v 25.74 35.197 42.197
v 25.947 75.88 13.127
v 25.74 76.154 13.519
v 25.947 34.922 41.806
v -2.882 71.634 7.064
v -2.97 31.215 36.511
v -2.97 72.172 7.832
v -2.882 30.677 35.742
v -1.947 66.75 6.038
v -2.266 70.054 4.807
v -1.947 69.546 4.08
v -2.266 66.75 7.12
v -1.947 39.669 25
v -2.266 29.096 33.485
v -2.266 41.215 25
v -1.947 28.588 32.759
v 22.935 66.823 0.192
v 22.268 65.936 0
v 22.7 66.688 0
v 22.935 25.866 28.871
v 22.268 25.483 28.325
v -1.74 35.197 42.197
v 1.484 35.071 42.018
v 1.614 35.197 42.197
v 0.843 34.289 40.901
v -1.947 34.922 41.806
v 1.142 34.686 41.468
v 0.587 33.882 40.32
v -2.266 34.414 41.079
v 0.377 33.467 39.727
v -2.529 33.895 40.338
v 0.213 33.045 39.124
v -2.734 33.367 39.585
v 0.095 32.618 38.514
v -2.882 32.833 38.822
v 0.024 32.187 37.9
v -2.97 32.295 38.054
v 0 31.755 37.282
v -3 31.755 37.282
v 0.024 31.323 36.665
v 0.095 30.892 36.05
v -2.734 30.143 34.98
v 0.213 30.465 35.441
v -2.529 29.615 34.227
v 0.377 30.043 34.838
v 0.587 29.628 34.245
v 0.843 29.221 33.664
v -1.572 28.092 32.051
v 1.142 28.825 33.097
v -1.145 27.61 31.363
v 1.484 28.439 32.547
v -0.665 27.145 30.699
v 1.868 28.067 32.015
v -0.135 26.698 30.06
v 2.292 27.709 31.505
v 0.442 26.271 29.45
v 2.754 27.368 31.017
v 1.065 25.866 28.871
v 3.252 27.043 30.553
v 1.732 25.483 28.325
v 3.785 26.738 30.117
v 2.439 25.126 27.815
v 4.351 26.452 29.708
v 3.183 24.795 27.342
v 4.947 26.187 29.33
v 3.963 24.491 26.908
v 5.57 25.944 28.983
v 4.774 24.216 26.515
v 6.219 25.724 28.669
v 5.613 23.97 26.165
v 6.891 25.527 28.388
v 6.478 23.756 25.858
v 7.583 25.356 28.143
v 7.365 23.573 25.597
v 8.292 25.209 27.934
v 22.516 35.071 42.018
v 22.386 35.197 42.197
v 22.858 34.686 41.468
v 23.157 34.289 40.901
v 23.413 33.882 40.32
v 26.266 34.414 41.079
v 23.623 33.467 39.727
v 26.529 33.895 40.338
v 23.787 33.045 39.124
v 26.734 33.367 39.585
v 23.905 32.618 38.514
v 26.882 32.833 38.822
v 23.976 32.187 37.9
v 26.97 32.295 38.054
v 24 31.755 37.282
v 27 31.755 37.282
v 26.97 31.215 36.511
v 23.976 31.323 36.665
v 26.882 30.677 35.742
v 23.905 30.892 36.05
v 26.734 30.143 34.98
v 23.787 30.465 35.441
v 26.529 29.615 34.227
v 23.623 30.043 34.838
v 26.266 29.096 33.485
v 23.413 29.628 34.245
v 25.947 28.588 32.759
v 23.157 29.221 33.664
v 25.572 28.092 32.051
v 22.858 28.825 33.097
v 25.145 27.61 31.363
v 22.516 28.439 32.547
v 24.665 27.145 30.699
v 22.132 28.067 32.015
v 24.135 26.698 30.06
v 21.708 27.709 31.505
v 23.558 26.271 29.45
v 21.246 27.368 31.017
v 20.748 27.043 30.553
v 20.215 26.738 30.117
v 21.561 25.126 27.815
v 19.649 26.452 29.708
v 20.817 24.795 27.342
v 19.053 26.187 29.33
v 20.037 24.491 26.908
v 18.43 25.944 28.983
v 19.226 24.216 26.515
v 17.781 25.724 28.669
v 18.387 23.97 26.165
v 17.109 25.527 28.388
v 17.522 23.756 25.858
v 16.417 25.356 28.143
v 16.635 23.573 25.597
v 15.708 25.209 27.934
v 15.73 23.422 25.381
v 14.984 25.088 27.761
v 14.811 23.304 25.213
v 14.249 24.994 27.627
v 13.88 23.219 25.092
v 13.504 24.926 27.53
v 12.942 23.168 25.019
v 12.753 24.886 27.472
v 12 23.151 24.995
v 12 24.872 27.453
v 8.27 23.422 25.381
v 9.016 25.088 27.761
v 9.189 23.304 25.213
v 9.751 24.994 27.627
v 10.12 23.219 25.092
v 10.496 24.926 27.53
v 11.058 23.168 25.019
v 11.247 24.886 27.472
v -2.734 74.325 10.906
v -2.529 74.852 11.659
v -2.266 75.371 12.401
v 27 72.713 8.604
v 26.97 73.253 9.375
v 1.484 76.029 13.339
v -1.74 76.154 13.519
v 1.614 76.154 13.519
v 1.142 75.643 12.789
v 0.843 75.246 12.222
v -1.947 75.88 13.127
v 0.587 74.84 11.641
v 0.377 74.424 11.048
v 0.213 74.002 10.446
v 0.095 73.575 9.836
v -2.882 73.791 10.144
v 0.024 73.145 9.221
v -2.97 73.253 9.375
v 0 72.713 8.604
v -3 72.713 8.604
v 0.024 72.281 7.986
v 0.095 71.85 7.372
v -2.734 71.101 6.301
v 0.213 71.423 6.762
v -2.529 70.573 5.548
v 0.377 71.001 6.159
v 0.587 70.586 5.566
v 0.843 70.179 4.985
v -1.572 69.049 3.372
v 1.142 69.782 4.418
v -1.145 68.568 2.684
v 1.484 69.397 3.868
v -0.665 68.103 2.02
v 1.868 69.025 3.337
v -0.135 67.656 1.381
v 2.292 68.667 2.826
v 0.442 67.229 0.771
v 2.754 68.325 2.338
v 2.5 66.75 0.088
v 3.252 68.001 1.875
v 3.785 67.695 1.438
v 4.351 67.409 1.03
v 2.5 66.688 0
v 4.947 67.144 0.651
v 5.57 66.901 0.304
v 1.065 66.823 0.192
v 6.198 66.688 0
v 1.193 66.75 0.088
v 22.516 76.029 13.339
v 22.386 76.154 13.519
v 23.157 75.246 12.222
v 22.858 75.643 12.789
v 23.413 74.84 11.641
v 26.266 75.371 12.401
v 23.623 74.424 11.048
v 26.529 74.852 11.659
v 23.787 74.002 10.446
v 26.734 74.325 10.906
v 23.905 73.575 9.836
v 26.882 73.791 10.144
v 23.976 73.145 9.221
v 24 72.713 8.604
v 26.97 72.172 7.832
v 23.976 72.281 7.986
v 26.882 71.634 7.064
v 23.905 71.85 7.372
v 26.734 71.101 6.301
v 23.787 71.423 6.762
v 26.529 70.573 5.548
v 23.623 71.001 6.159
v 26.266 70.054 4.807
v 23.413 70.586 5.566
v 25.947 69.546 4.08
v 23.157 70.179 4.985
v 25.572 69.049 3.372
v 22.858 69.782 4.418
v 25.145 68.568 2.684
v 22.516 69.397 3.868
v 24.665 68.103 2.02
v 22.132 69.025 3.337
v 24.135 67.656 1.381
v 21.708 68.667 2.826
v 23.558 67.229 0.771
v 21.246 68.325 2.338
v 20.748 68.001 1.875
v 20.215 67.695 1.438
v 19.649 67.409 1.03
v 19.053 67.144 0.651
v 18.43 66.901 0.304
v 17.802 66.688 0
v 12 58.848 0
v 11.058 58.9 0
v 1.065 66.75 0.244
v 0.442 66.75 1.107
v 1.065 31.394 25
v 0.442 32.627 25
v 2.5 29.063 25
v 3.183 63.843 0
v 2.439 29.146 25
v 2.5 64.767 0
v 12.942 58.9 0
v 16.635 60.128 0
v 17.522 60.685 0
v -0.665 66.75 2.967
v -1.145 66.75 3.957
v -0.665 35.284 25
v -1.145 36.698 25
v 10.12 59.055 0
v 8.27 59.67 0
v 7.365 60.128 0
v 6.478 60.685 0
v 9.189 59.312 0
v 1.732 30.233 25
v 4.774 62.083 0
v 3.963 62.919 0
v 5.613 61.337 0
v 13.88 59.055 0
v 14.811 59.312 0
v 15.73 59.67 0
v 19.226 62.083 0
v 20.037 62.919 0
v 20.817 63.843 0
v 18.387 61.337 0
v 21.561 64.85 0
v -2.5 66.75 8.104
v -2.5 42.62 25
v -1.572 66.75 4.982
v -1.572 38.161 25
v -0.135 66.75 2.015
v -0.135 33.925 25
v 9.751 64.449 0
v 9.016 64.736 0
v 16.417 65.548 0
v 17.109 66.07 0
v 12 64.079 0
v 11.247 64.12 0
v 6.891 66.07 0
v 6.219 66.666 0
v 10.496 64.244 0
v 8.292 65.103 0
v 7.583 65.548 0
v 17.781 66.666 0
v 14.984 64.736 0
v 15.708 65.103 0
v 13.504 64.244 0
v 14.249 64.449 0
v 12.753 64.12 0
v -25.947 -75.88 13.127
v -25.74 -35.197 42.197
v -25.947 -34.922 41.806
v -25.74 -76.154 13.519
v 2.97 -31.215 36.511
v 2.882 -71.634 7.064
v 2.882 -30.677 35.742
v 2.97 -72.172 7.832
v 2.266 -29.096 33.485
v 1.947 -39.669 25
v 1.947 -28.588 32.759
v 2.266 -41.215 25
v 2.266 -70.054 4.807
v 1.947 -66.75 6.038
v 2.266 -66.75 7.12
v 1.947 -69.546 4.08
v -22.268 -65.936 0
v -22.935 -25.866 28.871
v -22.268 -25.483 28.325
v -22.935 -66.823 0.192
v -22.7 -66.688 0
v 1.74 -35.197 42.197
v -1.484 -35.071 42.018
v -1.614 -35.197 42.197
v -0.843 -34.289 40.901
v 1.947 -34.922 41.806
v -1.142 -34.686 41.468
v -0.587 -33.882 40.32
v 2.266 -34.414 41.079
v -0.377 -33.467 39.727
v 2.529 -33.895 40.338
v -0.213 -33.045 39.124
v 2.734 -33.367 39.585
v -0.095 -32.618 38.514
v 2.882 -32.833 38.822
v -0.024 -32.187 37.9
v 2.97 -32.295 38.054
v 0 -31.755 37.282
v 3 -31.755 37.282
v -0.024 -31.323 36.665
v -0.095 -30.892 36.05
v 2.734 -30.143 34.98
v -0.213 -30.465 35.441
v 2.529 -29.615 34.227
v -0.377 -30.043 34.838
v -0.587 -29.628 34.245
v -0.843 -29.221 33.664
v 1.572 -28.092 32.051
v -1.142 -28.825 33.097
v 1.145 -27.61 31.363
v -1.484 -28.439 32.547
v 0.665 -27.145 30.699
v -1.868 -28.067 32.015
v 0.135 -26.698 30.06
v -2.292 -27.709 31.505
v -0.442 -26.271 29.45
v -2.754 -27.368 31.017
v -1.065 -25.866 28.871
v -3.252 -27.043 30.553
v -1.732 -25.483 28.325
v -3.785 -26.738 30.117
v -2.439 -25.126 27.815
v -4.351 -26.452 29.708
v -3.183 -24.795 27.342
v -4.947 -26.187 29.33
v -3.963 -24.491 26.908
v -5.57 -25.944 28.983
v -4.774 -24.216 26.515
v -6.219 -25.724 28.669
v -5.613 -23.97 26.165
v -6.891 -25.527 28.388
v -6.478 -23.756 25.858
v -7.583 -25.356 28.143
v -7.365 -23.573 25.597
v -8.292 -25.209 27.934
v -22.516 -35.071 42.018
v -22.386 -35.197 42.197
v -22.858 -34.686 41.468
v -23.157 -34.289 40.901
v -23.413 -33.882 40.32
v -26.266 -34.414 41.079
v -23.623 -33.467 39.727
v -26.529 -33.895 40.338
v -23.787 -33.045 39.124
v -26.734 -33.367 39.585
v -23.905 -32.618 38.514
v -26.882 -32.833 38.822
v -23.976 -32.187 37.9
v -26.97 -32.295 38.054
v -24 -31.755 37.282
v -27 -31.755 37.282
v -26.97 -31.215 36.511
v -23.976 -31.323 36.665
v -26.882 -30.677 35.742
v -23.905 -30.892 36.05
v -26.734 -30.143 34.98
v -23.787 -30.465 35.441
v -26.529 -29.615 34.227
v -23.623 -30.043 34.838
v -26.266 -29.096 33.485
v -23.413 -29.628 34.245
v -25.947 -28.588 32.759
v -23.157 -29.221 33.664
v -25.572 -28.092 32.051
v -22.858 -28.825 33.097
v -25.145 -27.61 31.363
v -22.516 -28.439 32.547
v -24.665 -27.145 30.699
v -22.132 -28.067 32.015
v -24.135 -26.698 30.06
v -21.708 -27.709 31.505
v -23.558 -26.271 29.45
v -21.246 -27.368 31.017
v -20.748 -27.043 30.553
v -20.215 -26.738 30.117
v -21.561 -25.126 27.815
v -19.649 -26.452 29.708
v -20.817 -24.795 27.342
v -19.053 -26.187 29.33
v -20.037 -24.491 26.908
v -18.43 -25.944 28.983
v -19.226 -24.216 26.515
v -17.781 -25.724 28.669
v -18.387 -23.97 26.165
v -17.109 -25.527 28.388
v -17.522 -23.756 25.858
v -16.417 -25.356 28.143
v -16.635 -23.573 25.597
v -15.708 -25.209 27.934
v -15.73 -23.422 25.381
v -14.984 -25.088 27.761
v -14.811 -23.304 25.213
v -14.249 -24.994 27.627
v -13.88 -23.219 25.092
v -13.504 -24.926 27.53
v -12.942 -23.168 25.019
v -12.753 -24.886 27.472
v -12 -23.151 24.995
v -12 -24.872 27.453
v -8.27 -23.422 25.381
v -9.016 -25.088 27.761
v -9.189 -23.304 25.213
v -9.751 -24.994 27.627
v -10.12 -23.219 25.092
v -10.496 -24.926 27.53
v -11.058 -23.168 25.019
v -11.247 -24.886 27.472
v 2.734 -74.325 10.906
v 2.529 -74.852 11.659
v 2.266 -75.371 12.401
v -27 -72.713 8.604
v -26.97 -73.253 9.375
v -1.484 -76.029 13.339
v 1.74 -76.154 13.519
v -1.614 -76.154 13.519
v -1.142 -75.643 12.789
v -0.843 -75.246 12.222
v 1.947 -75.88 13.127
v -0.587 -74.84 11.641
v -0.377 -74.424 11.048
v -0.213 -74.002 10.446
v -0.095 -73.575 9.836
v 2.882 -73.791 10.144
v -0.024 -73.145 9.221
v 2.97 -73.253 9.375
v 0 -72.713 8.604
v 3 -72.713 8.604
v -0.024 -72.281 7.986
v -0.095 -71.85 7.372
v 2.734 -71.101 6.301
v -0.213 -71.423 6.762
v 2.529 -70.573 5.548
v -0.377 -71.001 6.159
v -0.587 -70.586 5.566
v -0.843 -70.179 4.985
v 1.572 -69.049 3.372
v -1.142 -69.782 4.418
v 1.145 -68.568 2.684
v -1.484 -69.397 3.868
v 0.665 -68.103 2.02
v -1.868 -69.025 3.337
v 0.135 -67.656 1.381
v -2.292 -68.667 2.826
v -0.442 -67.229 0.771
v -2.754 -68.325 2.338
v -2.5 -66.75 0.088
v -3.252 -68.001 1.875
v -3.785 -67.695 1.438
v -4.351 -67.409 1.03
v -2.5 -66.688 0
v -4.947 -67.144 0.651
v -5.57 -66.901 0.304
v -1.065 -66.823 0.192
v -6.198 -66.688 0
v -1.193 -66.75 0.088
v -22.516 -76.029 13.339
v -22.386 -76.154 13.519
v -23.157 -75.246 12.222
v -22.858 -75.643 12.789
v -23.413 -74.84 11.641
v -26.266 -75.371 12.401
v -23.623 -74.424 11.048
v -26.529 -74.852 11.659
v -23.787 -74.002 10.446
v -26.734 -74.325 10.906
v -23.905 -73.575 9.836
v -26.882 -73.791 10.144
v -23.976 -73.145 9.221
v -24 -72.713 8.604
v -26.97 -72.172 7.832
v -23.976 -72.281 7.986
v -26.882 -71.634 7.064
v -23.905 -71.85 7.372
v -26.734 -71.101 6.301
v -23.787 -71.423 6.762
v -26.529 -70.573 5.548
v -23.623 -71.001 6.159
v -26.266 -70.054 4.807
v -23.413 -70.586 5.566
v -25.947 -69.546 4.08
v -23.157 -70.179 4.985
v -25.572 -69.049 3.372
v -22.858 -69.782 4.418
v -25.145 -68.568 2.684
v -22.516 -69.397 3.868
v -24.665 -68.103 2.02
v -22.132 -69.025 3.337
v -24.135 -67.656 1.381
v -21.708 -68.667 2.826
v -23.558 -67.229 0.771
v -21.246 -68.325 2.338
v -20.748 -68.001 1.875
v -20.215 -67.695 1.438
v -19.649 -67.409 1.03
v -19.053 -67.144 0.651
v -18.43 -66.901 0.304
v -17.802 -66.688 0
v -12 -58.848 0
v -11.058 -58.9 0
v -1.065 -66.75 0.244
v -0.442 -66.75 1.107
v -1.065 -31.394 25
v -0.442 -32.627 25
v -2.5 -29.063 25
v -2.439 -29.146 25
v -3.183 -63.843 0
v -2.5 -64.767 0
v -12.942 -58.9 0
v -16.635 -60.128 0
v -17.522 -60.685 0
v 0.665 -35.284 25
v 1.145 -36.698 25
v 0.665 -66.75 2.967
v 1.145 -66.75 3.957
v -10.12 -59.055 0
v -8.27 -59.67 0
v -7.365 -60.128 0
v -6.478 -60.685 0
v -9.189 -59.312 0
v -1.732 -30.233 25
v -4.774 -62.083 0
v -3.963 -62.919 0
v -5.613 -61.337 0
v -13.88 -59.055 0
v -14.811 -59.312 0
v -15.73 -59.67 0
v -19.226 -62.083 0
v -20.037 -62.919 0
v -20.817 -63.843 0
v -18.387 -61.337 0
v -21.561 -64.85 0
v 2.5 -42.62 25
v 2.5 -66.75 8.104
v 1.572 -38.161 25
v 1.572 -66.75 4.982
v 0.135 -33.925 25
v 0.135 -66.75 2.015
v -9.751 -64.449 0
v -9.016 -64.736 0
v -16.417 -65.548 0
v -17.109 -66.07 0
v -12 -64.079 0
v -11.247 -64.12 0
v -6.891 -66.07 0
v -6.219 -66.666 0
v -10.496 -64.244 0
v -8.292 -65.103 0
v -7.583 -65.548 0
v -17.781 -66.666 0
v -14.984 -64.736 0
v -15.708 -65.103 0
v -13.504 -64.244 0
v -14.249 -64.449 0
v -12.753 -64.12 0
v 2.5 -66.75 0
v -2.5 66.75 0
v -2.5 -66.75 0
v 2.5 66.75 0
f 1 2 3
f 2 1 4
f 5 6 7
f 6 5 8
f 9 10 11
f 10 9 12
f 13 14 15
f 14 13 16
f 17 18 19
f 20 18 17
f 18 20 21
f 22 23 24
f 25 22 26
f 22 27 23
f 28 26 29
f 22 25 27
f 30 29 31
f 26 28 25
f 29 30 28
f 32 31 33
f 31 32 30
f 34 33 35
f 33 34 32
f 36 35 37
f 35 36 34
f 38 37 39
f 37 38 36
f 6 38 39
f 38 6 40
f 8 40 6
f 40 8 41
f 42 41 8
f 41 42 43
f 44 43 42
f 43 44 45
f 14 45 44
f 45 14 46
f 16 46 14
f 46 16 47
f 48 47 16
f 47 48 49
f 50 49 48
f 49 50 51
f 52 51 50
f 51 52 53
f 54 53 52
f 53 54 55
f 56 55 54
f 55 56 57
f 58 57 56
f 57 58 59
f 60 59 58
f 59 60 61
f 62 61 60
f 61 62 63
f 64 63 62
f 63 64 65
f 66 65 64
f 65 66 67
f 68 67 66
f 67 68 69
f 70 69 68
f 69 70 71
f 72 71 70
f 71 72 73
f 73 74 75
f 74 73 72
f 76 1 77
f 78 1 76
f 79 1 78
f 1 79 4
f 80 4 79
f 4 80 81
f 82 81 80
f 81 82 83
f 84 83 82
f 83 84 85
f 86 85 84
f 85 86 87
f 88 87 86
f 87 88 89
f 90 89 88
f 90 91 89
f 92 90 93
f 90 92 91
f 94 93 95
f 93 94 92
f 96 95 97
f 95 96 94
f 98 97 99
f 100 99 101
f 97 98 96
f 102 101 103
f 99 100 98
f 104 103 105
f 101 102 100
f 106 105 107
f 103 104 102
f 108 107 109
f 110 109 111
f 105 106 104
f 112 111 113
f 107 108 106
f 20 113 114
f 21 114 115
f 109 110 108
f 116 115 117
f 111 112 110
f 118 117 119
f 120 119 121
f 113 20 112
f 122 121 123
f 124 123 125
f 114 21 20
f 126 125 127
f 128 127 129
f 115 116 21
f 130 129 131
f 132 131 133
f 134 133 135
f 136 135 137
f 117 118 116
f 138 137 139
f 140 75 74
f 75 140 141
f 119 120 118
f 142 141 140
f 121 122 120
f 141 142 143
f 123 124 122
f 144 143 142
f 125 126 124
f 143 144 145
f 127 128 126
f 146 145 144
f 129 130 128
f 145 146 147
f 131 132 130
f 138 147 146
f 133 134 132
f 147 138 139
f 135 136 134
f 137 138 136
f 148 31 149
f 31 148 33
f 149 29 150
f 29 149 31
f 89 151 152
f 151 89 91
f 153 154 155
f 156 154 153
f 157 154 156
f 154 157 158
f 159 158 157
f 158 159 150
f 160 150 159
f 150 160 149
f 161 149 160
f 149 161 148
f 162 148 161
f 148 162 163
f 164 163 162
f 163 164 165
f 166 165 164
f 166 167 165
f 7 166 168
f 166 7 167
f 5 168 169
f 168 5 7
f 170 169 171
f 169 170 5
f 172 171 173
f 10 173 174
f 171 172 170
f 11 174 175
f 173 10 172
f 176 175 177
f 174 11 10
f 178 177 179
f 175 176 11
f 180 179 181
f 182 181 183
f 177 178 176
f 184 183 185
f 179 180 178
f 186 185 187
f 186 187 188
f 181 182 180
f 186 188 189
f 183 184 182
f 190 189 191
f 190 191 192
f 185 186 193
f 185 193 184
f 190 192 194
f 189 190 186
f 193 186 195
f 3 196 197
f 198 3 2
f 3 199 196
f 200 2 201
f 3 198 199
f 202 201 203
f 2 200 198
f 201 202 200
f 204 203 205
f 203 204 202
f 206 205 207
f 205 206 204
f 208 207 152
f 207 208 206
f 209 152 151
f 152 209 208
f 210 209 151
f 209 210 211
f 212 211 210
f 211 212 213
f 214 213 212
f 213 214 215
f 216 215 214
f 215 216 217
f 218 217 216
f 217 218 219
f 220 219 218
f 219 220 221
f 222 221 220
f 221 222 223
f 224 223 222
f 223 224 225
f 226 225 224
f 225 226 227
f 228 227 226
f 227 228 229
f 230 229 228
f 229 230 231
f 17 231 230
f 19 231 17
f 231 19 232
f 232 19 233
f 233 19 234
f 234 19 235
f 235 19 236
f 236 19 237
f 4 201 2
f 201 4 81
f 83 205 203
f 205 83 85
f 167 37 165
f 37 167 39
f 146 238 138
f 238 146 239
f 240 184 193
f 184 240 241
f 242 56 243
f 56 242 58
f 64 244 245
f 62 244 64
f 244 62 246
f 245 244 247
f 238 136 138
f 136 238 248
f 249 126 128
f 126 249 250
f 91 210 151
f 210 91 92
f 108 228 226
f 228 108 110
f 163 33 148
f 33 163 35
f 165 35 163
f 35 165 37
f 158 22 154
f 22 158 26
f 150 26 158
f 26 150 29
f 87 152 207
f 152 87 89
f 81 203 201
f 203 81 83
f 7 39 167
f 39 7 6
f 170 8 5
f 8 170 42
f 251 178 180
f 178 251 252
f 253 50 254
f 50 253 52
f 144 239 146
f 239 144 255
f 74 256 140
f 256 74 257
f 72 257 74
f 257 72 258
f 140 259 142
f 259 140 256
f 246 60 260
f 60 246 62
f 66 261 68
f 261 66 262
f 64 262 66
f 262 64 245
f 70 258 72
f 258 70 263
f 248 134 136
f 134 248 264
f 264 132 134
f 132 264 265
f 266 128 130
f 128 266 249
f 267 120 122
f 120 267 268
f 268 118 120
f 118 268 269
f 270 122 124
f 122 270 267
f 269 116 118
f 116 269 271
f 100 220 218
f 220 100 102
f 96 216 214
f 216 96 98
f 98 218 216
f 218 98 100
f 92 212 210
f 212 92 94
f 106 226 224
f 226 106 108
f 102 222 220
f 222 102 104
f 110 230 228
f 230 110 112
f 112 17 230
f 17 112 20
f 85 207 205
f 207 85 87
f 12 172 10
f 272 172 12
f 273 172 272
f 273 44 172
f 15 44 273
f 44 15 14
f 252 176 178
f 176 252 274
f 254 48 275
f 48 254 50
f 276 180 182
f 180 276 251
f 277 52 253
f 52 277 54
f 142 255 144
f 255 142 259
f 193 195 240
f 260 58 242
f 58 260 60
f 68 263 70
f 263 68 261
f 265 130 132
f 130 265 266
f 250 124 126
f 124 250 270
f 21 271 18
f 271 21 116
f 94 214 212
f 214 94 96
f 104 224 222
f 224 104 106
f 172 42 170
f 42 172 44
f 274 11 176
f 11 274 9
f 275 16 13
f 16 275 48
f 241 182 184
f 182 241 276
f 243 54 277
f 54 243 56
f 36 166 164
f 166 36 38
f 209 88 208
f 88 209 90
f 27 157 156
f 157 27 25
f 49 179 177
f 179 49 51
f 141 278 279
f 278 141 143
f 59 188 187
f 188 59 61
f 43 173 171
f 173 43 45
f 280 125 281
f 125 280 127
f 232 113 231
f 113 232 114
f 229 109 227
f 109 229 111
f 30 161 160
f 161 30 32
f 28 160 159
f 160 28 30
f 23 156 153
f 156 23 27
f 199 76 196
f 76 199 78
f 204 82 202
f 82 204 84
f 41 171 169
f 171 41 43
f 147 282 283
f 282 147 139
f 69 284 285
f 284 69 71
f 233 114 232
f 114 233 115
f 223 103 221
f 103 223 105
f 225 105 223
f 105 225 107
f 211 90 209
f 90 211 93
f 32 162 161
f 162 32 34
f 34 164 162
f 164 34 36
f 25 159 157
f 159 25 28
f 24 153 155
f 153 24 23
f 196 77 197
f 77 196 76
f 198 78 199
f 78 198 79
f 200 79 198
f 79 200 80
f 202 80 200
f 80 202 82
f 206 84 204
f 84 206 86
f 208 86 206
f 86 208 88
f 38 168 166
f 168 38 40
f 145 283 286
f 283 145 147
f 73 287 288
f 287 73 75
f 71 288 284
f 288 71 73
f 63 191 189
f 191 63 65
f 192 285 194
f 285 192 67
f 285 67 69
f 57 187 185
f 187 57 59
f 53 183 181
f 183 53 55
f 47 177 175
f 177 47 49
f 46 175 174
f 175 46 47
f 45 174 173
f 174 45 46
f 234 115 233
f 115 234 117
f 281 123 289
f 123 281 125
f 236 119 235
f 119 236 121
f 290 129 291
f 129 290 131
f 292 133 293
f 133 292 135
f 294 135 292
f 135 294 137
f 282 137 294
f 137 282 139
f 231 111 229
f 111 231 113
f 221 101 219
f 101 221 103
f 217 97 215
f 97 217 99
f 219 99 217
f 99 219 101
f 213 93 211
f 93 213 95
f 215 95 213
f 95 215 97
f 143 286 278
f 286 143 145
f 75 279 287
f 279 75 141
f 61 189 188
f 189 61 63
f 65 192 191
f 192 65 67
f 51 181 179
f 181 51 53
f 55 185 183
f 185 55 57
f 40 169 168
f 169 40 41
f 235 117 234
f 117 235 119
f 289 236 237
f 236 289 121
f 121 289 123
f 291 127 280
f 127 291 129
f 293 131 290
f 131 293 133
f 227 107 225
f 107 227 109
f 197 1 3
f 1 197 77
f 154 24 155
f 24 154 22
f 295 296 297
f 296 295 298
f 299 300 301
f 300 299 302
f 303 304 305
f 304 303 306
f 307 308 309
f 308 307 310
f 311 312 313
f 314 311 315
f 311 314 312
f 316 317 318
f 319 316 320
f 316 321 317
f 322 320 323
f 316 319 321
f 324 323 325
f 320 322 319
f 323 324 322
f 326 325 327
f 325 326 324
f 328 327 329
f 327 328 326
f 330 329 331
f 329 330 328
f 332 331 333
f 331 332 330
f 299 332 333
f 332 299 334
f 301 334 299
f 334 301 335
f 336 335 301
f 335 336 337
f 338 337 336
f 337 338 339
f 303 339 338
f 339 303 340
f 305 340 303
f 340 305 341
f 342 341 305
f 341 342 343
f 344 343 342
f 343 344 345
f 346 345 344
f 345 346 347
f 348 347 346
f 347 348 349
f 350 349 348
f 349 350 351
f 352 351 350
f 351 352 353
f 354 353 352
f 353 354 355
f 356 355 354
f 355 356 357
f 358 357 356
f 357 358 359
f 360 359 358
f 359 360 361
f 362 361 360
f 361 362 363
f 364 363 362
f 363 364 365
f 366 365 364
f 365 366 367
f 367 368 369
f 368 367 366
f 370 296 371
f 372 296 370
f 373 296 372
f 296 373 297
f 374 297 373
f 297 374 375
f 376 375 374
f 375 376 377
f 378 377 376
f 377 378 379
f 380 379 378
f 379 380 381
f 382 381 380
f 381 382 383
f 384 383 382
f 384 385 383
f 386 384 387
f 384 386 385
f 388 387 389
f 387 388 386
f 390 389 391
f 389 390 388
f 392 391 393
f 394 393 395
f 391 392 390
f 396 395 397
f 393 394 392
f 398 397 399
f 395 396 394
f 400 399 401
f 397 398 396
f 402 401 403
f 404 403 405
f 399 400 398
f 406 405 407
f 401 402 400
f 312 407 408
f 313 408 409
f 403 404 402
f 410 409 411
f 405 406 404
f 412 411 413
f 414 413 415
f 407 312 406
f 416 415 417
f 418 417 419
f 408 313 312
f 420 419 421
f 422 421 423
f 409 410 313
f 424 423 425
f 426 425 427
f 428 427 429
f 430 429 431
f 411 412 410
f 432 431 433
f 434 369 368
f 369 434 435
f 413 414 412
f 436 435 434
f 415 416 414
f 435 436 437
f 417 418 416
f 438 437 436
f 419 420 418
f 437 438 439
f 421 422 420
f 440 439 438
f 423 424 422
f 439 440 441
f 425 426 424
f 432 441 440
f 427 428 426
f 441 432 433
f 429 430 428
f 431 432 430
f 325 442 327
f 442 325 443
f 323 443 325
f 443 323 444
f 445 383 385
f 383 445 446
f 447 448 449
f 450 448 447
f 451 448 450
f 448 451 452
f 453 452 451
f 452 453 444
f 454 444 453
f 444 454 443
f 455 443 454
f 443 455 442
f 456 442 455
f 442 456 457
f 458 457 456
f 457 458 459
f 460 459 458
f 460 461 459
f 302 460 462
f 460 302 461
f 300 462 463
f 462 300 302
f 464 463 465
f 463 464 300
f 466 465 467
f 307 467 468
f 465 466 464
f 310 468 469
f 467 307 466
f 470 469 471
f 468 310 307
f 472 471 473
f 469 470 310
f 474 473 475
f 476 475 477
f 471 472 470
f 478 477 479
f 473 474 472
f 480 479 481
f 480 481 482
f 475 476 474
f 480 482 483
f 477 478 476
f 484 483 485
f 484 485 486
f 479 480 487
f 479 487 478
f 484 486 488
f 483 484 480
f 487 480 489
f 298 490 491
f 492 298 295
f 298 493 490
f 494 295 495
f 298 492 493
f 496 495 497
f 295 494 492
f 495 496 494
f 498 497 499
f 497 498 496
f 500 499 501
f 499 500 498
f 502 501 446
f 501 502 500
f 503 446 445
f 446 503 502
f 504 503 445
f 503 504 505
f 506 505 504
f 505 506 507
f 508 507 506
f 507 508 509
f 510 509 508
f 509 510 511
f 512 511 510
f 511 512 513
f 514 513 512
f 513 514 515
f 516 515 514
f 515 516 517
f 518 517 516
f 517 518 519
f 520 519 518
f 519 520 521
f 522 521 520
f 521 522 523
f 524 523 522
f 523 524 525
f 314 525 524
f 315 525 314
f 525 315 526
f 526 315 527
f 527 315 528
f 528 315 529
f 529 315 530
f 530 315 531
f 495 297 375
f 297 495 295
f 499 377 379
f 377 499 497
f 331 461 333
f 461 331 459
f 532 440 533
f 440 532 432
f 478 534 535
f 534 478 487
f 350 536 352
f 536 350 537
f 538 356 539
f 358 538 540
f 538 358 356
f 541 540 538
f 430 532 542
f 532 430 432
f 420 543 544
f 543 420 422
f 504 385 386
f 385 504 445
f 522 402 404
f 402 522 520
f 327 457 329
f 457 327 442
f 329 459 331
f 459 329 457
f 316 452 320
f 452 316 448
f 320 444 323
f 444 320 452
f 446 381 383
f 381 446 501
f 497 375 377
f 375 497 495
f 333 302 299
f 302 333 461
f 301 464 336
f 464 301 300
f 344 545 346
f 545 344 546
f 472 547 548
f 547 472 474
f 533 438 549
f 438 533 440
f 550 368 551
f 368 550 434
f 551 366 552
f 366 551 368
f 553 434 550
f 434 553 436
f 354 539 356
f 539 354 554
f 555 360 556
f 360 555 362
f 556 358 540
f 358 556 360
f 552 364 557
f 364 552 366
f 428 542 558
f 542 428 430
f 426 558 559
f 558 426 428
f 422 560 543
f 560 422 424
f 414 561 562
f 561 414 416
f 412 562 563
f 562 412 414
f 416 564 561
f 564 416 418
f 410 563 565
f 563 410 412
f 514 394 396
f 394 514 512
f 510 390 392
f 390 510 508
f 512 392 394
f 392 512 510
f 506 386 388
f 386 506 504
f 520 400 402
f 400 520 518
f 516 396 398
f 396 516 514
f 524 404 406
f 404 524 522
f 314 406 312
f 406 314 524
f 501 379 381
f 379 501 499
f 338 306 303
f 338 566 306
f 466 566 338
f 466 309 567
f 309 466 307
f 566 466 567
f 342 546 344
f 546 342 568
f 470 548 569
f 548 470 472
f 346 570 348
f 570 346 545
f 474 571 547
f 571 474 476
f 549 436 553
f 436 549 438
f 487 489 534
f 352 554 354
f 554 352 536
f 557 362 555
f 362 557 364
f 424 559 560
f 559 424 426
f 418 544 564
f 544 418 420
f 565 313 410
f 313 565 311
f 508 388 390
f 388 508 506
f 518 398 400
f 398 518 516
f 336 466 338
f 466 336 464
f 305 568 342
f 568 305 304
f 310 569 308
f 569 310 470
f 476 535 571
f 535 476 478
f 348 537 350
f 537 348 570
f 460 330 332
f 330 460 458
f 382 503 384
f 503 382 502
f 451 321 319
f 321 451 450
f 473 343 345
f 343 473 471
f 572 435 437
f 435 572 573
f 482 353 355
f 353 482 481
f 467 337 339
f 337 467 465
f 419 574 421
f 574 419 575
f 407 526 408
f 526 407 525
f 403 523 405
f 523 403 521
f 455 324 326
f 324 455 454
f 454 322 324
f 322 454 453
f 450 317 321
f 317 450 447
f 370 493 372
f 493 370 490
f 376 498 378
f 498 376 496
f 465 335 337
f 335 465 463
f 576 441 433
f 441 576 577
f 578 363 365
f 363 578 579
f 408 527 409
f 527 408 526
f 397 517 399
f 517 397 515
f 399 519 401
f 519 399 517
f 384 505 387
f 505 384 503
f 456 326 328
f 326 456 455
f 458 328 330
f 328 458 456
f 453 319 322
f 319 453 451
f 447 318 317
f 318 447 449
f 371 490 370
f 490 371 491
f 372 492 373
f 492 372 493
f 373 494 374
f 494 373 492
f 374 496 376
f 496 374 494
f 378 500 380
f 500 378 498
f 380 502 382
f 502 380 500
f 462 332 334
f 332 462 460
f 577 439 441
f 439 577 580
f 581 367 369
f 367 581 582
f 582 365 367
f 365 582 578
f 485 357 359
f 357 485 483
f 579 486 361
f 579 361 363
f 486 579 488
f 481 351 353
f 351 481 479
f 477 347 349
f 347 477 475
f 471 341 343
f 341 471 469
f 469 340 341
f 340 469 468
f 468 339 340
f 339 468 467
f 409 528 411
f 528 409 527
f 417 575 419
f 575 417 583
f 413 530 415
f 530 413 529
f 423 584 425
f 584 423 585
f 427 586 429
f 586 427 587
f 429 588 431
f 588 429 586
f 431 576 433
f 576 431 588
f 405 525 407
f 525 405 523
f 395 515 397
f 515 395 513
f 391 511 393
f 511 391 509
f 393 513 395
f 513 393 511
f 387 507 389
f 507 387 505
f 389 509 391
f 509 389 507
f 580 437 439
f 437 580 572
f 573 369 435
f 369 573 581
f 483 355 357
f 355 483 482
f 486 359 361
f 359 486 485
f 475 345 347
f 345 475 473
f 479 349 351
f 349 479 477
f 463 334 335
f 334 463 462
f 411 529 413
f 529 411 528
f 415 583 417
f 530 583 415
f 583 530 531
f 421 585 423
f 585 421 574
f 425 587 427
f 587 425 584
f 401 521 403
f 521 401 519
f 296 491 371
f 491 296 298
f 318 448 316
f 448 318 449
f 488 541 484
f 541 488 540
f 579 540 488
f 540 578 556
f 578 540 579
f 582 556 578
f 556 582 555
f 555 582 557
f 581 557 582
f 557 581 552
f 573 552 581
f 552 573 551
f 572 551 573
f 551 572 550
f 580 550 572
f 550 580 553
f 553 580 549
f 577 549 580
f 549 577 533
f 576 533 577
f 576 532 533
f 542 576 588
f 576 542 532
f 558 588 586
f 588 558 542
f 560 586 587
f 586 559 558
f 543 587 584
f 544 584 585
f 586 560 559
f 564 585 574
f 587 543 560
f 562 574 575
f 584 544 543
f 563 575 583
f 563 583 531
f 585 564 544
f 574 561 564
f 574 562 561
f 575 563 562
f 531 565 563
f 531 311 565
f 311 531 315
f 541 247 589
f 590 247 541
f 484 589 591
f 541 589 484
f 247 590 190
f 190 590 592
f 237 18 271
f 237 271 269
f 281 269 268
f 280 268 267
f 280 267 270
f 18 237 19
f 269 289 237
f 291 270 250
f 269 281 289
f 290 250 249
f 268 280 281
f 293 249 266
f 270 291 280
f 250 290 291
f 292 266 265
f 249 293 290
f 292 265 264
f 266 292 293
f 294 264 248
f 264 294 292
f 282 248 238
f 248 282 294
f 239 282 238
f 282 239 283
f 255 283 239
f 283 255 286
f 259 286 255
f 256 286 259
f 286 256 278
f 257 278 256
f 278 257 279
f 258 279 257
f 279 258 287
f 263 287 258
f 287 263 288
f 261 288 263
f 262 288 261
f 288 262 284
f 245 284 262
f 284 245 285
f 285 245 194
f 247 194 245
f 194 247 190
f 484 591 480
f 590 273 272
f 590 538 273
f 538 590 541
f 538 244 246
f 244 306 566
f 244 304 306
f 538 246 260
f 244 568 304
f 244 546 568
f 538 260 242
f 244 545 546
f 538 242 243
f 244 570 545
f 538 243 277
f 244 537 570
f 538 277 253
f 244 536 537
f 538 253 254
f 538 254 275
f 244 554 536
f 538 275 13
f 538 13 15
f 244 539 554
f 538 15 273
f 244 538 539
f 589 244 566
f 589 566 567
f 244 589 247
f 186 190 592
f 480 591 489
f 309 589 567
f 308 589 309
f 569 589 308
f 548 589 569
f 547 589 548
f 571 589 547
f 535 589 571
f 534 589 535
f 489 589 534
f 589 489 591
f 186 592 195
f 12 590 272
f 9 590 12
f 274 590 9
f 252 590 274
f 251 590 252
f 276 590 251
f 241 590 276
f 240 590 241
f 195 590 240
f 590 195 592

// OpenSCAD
$fn=100;


// microphone properties
mic_l=163; // total length of microphone
mic_d=24;  // the diameter of the microphone
capsule_depth=10; // how far in from the end of the 
mic_color= "#5F5F5F";
microphone_visible = false;

// ORTF spec
capsul_distance=170; // the distance between capsules
mic_angle=110;  // angle (in degrees)

// plastic printing
thick=3;    // thickness of plastic parts.
plate_thick=5;
cradle_length=50;
cradle_offset=25; // distance from tip of microphone to end of cradle start
module mic_ring() {
    difference() {
        color(mic_color)
        cylinder (h=2.2, r=mic_d/2+0.01, center=true);   
    
        color(mic_color)
        cylinder (h=2.2+0.01, r=mic_d/2-1, center=true);   
        
        rotate([0,0,-60])translate([mic_d/4,0,0])
        color(mic_color)
        cube([mic_d/2,3.5,2.2+0.01],center=true);
        
        rotate([0,0,60])translate([mic_d/4,0,0])
        color(mic_color)
        cube([mic_d/2,3.5,2.2+0.01],center=true);
        
        rotate([0,0,180])translate([mic_d/4,0,0])
        color(mic_color)
        cube([mic_d/2,3.5,2.2+0.01],center=true);
    }    
}

module mic_body() {
    
    color(mic_color)cylinder(h=mic_l-6, r = mic_d/2, center=true);
    
    translate([0,0,mic_l/2-1.5])
    color(mic_color)
    cylinder(h=3, r1 = mic_d/2, r2 = mic_d/2-3, center=true);
    
    translate([0,0,-mic_l/2+1.5])
    color(mic_color)
    cylinder(h=3, r2 = mic_d/2, r1 = mic_d/2-3, center=true);
}

module microphone() {
    difference() {
    mic_body();
        
    translate([0,0,mic_l/2 -13.8])mic_ring();
    translate([0,0,mic_l/2 -13.8 - 4])mic_ring();
    translate([0,0,mic_l/2 -13.8 - 8])mic_ring();
    }    
}

module mic_cradle() {
    translate([0,0,mic_l/2-cradle_length/2 - cradle_offset])
    rotate([0,0,90])
    difference() {
        cylinder(h=cradle_length,r=mic_d/2+thick, center=true);

        cylinder(h=cradle_length+0.01,r=mic_d/2, center=true);

        translate([0,0.5*mic_d,0])
        cube([mic_d+2*thick,mic_d/2, cradle_length+0.01], center=true);
    }
}

module mic_cradle_footprint() {
    translate([0,0,mic_l/2-cradle_length/2 - cradle_offset])
    rotate([0,0,90]){

        cylinder(h=cradle_length,r=mic_d/2+thick, center=true);
    
    translate([15,6,8])cube([10,10,15],center=true);
    }
}

module bridge() {
  ph=25;
  pl=133.5;
    
  difference() {
    translate([ph/2,0,0])cube([ph,pl,plate_thick], center=true); 

    translate([0,capsul_distance/2,0])
            rotate([0,0,-90-mic_angle/2])
            translate([0,mic_l/2-capsule_depth,-mic_d/2])
            rotate([90,0,0]){
                mic_cradle_footprint();
            }

   translate([0,-capsul_distance/2,0])
            rotate([0,0,90+mic_angle/2])
            translate([0,-mic_l/2+capsule_depth,mic_d/2])
            rotate([-90,0,0]) {
                mic_cradle_footprint();
            }  
  }
}

module clip(){
    rotate([0,-90,0]) {
    difference() {
        union() {
            translate([0,capsul_distance/2,0])
            rotate([0,0,-90-mic_angle/2])
            translate([0,mic_l/2-capsule_depth,-mic_d/2])
            rotate([90,0,0]){
                mic_cradle();
            }

            translate([0,-capsul_distance/2,0])
            rotate([0,0,90+mic_angle/2])
            translate([0,-mic_l/2+capsule_depth,mic_d/2])
            rotate([-90,0,0]) {
                mic_cradle();
            }
           
            bridge(); 
        }

    translate([-2.5,0,0])cube([5,140,50], center=true);
    }
    

}
    
}

module microphones(){
    rotate([0,-90,0])
        union() {
            translate([0,capsul_distance/2,0])
            rotate([0,0,-90-mic_angle/2])
            translate([0,mic_l/2-capsule_depth,-mic_d/2])
            rotate([90,0,0]){
                if (microphone_visible)
                    microphone();
            }

            translate([0,-capsul_distance/2,0])
            rotate([0,0,90+mic_angle/2])
            translate([0,-mic_l/2+capsule_depth,mic_d/2])
            rotate([-90,0,0]) {
                if (microphone_visible)
                    microphone();
            }
        }
}



clip();
microphones();
